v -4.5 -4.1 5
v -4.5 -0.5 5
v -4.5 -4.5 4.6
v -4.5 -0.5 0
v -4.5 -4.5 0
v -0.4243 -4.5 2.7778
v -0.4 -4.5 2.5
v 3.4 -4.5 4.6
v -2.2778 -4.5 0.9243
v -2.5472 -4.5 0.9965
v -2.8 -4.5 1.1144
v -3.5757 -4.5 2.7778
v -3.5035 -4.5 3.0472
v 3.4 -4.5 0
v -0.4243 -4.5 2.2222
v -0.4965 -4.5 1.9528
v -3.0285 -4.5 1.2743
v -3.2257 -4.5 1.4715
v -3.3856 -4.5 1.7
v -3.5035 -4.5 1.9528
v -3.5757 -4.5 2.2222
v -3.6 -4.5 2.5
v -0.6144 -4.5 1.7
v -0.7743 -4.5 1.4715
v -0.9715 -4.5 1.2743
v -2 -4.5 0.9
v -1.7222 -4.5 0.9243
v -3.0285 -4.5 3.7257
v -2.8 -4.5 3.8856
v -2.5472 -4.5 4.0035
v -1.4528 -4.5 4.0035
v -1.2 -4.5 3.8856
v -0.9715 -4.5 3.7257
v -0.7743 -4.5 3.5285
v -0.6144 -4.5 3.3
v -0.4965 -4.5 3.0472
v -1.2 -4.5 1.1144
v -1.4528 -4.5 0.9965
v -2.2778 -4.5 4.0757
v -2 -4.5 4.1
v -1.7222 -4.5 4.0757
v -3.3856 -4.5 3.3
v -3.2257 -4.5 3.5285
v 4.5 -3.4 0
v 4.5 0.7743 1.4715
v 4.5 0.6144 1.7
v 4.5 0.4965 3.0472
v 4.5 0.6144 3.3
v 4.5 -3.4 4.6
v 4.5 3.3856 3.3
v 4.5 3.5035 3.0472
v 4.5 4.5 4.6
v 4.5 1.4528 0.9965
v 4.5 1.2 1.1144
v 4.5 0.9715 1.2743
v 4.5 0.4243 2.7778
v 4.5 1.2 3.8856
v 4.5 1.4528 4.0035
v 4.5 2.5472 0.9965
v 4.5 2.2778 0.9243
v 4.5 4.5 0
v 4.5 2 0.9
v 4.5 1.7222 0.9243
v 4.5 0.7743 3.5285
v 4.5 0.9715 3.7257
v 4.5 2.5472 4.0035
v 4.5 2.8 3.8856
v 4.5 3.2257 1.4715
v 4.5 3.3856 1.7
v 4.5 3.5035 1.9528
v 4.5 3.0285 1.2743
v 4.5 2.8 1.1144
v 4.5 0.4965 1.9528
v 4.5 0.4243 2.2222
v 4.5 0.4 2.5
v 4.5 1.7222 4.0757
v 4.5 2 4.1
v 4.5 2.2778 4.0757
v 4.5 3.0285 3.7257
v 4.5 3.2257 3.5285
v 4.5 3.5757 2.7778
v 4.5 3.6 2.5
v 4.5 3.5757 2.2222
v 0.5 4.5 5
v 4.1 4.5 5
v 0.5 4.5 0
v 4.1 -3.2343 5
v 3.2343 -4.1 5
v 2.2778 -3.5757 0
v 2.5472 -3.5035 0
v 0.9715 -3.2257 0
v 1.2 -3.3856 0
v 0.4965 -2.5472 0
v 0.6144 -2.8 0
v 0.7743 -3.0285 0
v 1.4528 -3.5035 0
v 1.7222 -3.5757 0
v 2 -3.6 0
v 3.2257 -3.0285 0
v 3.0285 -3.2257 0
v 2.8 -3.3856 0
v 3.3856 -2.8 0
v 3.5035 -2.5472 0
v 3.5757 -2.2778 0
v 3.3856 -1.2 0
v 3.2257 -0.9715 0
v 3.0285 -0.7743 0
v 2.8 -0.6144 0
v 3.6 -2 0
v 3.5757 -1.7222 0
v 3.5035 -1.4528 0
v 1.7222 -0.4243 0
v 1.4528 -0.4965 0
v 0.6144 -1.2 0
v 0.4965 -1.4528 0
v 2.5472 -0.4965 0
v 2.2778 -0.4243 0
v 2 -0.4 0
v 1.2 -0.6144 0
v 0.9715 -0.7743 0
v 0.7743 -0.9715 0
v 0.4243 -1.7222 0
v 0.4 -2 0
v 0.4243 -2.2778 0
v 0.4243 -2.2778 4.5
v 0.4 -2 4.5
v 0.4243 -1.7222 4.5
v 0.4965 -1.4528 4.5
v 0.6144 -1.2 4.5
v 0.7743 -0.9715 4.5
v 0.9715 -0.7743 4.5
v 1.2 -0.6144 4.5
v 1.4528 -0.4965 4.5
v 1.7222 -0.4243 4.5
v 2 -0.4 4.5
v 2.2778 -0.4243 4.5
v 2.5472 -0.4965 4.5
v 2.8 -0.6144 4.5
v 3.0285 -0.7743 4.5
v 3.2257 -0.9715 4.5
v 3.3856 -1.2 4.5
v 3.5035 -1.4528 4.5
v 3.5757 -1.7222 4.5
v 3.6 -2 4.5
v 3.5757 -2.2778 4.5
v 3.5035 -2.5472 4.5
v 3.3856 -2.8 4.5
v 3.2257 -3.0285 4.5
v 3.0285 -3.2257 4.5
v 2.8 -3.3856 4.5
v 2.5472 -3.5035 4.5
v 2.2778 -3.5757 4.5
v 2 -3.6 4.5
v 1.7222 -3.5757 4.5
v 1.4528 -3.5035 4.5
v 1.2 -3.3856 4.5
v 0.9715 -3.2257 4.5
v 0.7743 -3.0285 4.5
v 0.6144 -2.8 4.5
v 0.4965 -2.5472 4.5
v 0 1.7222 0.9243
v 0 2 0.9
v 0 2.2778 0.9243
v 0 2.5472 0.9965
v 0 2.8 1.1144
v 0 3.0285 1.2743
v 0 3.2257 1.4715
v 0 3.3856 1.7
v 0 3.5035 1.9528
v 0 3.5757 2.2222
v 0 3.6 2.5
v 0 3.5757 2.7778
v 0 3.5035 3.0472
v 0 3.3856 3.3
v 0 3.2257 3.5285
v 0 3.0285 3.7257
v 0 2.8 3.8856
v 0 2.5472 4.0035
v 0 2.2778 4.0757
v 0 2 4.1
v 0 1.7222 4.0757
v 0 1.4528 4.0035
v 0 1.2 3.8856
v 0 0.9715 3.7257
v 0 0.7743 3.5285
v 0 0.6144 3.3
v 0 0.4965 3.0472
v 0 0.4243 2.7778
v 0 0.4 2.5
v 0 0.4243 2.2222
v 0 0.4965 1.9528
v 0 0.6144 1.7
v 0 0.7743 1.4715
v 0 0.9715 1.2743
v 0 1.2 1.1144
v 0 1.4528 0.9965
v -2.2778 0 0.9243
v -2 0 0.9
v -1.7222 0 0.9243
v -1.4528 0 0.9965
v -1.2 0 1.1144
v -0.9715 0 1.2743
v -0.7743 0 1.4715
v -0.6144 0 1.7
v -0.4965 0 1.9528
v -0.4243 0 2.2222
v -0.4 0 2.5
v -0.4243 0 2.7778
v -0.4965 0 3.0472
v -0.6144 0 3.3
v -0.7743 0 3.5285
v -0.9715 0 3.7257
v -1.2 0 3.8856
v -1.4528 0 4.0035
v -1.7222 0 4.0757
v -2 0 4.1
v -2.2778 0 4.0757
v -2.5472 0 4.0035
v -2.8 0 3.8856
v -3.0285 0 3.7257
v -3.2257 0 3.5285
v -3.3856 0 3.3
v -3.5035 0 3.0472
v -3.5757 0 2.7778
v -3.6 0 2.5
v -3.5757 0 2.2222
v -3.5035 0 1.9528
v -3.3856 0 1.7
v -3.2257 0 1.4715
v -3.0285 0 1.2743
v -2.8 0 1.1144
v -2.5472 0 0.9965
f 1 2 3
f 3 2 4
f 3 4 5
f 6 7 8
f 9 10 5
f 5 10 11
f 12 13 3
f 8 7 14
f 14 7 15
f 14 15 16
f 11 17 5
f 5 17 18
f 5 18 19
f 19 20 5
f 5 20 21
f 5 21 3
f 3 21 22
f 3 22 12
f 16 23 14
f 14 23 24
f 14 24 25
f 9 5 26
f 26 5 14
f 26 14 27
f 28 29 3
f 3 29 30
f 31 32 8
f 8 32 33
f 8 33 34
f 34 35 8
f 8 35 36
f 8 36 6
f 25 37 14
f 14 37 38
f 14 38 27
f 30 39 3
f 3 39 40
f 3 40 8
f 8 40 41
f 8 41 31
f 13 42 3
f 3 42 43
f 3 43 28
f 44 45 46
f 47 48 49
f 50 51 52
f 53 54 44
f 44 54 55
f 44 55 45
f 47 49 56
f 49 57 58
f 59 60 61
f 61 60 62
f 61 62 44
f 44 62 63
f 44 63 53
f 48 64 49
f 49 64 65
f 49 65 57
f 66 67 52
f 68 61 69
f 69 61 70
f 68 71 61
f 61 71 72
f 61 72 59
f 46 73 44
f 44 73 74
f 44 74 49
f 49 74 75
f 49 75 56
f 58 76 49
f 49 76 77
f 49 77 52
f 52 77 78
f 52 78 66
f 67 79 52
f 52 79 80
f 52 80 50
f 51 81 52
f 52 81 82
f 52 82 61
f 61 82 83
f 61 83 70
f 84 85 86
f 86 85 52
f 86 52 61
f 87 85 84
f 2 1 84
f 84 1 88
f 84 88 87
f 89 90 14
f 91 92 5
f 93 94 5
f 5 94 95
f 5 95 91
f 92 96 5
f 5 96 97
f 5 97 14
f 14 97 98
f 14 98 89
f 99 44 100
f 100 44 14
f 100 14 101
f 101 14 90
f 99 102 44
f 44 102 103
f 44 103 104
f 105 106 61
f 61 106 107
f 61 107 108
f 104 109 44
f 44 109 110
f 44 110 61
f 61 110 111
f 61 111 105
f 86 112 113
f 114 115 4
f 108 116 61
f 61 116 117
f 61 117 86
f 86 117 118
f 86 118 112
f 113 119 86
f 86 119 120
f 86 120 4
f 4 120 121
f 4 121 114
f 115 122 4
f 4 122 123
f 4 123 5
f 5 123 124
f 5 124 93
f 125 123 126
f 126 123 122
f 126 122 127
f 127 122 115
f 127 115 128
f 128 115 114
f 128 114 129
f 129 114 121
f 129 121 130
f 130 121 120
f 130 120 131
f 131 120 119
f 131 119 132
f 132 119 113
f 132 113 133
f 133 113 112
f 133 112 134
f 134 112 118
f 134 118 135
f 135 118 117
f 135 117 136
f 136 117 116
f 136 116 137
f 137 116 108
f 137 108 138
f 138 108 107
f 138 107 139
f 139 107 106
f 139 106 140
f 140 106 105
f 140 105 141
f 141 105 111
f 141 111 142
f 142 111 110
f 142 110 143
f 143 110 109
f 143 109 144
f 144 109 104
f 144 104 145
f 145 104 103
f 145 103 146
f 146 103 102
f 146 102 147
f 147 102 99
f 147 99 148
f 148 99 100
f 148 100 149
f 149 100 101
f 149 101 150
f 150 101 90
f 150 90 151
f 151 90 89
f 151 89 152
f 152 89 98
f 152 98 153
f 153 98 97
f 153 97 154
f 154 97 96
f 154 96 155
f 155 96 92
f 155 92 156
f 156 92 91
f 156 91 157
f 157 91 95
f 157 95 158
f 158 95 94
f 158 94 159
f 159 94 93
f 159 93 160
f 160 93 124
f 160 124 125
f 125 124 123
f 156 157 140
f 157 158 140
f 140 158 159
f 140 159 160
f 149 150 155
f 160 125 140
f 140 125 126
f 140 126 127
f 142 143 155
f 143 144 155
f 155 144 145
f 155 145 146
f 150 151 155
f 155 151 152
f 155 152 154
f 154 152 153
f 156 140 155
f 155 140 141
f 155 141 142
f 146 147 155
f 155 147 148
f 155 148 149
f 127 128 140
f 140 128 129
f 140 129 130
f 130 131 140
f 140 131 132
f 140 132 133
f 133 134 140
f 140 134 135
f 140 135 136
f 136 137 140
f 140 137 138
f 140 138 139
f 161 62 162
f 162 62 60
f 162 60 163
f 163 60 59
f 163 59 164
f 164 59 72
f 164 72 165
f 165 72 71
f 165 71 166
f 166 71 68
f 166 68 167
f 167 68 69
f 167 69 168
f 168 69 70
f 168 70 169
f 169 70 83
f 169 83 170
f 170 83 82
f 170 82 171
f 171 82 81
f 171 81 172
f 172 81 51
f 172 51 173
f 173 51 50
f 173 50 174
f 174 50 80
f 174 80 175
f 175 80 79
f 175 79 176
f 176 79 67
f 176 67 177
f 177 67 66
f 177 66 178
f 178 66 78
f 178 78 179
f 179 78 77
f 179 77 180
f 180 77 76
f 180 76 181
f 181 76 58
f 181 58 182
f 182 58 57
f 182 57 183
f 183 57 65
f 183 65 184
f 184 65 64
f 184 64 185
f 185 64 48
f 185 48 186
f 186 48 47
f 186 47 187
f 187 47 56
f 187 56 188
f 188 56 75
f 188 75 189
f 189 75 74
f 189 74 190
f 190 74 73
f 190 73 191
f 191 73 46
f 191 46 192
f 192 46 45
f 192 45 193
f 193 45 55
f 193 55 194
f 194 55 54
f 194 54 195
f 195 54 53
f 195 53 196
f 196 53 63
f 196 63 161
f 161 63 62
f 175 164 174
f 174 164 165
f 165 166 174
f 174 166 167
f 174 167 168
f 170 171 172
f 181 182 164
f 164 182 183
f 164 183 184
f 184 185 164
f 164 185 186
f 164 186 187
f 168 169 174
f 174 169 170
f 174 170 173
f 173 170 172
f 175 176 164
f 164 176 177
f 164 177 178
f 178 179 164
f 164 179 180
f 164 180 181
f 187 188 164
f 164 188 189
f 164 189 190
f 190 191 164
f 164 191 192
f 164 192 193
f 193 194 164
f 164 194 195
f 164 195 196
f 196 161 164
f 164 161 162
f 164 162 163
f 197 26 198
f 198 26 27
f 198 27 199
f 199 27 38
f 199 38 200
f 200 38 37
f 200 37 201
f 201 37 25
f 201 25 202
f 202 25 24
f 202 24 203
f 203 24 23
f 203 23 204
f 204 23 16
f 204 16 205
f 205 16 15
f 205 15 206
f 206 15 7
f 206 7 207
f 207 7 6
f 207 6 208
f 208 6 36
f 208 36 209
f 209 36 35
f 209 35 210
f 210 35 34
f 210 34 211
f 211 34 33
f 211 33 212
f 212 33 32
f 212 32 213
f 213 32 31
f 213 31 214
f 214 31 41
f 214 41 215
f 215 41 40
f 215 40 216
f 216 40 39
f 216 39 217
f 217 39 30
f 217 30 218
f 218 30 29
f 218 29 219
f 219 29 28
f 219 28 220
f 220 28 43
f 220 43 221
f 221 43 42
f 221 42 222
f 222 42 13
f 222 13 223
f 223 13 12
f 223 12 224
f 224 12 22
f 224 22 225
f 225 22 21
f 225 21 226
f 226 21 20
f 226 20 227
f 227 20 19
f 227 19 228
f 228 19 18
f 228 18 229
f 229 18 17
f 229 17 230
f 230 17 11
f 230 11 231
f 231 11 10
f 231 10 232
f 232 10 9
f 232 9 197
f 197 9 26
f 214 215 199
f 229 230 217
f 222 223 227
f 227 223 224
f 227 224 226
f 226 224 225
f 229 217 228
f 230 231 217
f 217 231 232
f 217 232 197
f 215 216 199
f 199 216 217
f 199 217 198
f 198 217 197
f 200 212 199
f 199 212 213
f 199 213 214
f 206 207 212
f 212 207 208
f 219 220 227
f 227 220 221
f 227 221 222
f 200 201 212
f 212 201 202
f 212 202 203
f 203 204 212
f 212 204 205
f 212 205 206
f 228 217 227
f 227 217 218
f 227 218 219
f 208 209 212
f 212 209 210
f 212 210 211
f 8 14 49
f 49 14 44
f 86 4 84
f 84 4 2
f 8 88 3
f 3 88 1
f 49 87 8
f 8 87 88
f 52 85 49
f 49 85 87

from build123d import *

# Parameters (mm, degrees)
SKETCH1_W           = 9
SKETCH1_H           = 9
BOSS_EXTRUDE1_DEPTH = 5
SKETCH2_R           = 1.6
CUT_EXTRUDE1_DEPTH  = 4.5
SKETCH3_R           = 1.6
CUT_EXTRUDE2_DEPTH  = 4.5
SKETCH4_R           = 1.6
CUT_EXTRUDE3_DEPTH  = 4.5
CHAMFER1_SIZE       = 1.1
CHAMFER2_SIZE       = 5
CHAMFER3_SIZE       = 0.4


with BuildPart() as part:
    # Sketch1 → Boss-Extrude1 (new body)
    with BuildSketch(Plane.XY):
        Rectangle(SKETCH1_W, SKETCH1_H)
    extrude(amount=BOSS_EXTRUDE1_DEPTH)

    # Sketch2 → Cut-Extrude1 (cut)
    with BuildSketch(Plane(origin=(0, 0, 0), x_dir=(-1, 0, 0), z_dir=(0, 0, -1))):
        with Locations((-2, -2)):
            Circle(SKETCH2_R)
    extrude(amount=-CUT_EXTRUDE1_DEPTH, mode=Mode.SUBTRACT)

    # Sketch3 → Cut-Extrude2 (cut)
    with BuildSketch(Plane(origin=(4.5, 0, 0), x_dir=(0, 0, -1), z_dir=(1, 0, 0))):
        with Locations((-2.5, 2)):
            Circle(SKETCH3_R)
    extrude(amount=-CUT_EXTRUDE2_DEPTH, mode=Mode.SUBTRACT)

    # Sketch4 → Cut-Extrude3 (cut)
    with BuildSketch(Plane.XZ.offset(4.5)):
        with Locations((-2, 2.5)):
            Circle(SKETCH4_R)
    extrude(amount=-CUT_EXTRUDE3_DEPTH, mode=Mode.SUBTRACT)

    # Chamfer1
    chamfer1_edges = [part.edges().sort_by_distance(p)[0] for p in [
        (4.5, -4.5, 2.5),
    ]]
    chamfer(chamfer1_edges, length=CHAMFER1_SIZE)

    # Chamfer2
    chamfer2_edges = [part.edges().sort_by_distance(p)[0] for p in [
        (-4.5, 4.5, 2.5),
    ]]
    chamfer(chamfer2_edges, length=CHAMFER2_SIZE)

    # Chamfer3
    chamfer3_edges = [part.edges().sort_by_distance(p)[0] for p in [
        (4.5, 0.55, 5),
        (3.95, -3.95, 5),
        (-0.55, -4.5, 5),
    ]]
    chamfer(chamfer3_edges, length=CHAMFER3_SIZE)


solid = part.part
